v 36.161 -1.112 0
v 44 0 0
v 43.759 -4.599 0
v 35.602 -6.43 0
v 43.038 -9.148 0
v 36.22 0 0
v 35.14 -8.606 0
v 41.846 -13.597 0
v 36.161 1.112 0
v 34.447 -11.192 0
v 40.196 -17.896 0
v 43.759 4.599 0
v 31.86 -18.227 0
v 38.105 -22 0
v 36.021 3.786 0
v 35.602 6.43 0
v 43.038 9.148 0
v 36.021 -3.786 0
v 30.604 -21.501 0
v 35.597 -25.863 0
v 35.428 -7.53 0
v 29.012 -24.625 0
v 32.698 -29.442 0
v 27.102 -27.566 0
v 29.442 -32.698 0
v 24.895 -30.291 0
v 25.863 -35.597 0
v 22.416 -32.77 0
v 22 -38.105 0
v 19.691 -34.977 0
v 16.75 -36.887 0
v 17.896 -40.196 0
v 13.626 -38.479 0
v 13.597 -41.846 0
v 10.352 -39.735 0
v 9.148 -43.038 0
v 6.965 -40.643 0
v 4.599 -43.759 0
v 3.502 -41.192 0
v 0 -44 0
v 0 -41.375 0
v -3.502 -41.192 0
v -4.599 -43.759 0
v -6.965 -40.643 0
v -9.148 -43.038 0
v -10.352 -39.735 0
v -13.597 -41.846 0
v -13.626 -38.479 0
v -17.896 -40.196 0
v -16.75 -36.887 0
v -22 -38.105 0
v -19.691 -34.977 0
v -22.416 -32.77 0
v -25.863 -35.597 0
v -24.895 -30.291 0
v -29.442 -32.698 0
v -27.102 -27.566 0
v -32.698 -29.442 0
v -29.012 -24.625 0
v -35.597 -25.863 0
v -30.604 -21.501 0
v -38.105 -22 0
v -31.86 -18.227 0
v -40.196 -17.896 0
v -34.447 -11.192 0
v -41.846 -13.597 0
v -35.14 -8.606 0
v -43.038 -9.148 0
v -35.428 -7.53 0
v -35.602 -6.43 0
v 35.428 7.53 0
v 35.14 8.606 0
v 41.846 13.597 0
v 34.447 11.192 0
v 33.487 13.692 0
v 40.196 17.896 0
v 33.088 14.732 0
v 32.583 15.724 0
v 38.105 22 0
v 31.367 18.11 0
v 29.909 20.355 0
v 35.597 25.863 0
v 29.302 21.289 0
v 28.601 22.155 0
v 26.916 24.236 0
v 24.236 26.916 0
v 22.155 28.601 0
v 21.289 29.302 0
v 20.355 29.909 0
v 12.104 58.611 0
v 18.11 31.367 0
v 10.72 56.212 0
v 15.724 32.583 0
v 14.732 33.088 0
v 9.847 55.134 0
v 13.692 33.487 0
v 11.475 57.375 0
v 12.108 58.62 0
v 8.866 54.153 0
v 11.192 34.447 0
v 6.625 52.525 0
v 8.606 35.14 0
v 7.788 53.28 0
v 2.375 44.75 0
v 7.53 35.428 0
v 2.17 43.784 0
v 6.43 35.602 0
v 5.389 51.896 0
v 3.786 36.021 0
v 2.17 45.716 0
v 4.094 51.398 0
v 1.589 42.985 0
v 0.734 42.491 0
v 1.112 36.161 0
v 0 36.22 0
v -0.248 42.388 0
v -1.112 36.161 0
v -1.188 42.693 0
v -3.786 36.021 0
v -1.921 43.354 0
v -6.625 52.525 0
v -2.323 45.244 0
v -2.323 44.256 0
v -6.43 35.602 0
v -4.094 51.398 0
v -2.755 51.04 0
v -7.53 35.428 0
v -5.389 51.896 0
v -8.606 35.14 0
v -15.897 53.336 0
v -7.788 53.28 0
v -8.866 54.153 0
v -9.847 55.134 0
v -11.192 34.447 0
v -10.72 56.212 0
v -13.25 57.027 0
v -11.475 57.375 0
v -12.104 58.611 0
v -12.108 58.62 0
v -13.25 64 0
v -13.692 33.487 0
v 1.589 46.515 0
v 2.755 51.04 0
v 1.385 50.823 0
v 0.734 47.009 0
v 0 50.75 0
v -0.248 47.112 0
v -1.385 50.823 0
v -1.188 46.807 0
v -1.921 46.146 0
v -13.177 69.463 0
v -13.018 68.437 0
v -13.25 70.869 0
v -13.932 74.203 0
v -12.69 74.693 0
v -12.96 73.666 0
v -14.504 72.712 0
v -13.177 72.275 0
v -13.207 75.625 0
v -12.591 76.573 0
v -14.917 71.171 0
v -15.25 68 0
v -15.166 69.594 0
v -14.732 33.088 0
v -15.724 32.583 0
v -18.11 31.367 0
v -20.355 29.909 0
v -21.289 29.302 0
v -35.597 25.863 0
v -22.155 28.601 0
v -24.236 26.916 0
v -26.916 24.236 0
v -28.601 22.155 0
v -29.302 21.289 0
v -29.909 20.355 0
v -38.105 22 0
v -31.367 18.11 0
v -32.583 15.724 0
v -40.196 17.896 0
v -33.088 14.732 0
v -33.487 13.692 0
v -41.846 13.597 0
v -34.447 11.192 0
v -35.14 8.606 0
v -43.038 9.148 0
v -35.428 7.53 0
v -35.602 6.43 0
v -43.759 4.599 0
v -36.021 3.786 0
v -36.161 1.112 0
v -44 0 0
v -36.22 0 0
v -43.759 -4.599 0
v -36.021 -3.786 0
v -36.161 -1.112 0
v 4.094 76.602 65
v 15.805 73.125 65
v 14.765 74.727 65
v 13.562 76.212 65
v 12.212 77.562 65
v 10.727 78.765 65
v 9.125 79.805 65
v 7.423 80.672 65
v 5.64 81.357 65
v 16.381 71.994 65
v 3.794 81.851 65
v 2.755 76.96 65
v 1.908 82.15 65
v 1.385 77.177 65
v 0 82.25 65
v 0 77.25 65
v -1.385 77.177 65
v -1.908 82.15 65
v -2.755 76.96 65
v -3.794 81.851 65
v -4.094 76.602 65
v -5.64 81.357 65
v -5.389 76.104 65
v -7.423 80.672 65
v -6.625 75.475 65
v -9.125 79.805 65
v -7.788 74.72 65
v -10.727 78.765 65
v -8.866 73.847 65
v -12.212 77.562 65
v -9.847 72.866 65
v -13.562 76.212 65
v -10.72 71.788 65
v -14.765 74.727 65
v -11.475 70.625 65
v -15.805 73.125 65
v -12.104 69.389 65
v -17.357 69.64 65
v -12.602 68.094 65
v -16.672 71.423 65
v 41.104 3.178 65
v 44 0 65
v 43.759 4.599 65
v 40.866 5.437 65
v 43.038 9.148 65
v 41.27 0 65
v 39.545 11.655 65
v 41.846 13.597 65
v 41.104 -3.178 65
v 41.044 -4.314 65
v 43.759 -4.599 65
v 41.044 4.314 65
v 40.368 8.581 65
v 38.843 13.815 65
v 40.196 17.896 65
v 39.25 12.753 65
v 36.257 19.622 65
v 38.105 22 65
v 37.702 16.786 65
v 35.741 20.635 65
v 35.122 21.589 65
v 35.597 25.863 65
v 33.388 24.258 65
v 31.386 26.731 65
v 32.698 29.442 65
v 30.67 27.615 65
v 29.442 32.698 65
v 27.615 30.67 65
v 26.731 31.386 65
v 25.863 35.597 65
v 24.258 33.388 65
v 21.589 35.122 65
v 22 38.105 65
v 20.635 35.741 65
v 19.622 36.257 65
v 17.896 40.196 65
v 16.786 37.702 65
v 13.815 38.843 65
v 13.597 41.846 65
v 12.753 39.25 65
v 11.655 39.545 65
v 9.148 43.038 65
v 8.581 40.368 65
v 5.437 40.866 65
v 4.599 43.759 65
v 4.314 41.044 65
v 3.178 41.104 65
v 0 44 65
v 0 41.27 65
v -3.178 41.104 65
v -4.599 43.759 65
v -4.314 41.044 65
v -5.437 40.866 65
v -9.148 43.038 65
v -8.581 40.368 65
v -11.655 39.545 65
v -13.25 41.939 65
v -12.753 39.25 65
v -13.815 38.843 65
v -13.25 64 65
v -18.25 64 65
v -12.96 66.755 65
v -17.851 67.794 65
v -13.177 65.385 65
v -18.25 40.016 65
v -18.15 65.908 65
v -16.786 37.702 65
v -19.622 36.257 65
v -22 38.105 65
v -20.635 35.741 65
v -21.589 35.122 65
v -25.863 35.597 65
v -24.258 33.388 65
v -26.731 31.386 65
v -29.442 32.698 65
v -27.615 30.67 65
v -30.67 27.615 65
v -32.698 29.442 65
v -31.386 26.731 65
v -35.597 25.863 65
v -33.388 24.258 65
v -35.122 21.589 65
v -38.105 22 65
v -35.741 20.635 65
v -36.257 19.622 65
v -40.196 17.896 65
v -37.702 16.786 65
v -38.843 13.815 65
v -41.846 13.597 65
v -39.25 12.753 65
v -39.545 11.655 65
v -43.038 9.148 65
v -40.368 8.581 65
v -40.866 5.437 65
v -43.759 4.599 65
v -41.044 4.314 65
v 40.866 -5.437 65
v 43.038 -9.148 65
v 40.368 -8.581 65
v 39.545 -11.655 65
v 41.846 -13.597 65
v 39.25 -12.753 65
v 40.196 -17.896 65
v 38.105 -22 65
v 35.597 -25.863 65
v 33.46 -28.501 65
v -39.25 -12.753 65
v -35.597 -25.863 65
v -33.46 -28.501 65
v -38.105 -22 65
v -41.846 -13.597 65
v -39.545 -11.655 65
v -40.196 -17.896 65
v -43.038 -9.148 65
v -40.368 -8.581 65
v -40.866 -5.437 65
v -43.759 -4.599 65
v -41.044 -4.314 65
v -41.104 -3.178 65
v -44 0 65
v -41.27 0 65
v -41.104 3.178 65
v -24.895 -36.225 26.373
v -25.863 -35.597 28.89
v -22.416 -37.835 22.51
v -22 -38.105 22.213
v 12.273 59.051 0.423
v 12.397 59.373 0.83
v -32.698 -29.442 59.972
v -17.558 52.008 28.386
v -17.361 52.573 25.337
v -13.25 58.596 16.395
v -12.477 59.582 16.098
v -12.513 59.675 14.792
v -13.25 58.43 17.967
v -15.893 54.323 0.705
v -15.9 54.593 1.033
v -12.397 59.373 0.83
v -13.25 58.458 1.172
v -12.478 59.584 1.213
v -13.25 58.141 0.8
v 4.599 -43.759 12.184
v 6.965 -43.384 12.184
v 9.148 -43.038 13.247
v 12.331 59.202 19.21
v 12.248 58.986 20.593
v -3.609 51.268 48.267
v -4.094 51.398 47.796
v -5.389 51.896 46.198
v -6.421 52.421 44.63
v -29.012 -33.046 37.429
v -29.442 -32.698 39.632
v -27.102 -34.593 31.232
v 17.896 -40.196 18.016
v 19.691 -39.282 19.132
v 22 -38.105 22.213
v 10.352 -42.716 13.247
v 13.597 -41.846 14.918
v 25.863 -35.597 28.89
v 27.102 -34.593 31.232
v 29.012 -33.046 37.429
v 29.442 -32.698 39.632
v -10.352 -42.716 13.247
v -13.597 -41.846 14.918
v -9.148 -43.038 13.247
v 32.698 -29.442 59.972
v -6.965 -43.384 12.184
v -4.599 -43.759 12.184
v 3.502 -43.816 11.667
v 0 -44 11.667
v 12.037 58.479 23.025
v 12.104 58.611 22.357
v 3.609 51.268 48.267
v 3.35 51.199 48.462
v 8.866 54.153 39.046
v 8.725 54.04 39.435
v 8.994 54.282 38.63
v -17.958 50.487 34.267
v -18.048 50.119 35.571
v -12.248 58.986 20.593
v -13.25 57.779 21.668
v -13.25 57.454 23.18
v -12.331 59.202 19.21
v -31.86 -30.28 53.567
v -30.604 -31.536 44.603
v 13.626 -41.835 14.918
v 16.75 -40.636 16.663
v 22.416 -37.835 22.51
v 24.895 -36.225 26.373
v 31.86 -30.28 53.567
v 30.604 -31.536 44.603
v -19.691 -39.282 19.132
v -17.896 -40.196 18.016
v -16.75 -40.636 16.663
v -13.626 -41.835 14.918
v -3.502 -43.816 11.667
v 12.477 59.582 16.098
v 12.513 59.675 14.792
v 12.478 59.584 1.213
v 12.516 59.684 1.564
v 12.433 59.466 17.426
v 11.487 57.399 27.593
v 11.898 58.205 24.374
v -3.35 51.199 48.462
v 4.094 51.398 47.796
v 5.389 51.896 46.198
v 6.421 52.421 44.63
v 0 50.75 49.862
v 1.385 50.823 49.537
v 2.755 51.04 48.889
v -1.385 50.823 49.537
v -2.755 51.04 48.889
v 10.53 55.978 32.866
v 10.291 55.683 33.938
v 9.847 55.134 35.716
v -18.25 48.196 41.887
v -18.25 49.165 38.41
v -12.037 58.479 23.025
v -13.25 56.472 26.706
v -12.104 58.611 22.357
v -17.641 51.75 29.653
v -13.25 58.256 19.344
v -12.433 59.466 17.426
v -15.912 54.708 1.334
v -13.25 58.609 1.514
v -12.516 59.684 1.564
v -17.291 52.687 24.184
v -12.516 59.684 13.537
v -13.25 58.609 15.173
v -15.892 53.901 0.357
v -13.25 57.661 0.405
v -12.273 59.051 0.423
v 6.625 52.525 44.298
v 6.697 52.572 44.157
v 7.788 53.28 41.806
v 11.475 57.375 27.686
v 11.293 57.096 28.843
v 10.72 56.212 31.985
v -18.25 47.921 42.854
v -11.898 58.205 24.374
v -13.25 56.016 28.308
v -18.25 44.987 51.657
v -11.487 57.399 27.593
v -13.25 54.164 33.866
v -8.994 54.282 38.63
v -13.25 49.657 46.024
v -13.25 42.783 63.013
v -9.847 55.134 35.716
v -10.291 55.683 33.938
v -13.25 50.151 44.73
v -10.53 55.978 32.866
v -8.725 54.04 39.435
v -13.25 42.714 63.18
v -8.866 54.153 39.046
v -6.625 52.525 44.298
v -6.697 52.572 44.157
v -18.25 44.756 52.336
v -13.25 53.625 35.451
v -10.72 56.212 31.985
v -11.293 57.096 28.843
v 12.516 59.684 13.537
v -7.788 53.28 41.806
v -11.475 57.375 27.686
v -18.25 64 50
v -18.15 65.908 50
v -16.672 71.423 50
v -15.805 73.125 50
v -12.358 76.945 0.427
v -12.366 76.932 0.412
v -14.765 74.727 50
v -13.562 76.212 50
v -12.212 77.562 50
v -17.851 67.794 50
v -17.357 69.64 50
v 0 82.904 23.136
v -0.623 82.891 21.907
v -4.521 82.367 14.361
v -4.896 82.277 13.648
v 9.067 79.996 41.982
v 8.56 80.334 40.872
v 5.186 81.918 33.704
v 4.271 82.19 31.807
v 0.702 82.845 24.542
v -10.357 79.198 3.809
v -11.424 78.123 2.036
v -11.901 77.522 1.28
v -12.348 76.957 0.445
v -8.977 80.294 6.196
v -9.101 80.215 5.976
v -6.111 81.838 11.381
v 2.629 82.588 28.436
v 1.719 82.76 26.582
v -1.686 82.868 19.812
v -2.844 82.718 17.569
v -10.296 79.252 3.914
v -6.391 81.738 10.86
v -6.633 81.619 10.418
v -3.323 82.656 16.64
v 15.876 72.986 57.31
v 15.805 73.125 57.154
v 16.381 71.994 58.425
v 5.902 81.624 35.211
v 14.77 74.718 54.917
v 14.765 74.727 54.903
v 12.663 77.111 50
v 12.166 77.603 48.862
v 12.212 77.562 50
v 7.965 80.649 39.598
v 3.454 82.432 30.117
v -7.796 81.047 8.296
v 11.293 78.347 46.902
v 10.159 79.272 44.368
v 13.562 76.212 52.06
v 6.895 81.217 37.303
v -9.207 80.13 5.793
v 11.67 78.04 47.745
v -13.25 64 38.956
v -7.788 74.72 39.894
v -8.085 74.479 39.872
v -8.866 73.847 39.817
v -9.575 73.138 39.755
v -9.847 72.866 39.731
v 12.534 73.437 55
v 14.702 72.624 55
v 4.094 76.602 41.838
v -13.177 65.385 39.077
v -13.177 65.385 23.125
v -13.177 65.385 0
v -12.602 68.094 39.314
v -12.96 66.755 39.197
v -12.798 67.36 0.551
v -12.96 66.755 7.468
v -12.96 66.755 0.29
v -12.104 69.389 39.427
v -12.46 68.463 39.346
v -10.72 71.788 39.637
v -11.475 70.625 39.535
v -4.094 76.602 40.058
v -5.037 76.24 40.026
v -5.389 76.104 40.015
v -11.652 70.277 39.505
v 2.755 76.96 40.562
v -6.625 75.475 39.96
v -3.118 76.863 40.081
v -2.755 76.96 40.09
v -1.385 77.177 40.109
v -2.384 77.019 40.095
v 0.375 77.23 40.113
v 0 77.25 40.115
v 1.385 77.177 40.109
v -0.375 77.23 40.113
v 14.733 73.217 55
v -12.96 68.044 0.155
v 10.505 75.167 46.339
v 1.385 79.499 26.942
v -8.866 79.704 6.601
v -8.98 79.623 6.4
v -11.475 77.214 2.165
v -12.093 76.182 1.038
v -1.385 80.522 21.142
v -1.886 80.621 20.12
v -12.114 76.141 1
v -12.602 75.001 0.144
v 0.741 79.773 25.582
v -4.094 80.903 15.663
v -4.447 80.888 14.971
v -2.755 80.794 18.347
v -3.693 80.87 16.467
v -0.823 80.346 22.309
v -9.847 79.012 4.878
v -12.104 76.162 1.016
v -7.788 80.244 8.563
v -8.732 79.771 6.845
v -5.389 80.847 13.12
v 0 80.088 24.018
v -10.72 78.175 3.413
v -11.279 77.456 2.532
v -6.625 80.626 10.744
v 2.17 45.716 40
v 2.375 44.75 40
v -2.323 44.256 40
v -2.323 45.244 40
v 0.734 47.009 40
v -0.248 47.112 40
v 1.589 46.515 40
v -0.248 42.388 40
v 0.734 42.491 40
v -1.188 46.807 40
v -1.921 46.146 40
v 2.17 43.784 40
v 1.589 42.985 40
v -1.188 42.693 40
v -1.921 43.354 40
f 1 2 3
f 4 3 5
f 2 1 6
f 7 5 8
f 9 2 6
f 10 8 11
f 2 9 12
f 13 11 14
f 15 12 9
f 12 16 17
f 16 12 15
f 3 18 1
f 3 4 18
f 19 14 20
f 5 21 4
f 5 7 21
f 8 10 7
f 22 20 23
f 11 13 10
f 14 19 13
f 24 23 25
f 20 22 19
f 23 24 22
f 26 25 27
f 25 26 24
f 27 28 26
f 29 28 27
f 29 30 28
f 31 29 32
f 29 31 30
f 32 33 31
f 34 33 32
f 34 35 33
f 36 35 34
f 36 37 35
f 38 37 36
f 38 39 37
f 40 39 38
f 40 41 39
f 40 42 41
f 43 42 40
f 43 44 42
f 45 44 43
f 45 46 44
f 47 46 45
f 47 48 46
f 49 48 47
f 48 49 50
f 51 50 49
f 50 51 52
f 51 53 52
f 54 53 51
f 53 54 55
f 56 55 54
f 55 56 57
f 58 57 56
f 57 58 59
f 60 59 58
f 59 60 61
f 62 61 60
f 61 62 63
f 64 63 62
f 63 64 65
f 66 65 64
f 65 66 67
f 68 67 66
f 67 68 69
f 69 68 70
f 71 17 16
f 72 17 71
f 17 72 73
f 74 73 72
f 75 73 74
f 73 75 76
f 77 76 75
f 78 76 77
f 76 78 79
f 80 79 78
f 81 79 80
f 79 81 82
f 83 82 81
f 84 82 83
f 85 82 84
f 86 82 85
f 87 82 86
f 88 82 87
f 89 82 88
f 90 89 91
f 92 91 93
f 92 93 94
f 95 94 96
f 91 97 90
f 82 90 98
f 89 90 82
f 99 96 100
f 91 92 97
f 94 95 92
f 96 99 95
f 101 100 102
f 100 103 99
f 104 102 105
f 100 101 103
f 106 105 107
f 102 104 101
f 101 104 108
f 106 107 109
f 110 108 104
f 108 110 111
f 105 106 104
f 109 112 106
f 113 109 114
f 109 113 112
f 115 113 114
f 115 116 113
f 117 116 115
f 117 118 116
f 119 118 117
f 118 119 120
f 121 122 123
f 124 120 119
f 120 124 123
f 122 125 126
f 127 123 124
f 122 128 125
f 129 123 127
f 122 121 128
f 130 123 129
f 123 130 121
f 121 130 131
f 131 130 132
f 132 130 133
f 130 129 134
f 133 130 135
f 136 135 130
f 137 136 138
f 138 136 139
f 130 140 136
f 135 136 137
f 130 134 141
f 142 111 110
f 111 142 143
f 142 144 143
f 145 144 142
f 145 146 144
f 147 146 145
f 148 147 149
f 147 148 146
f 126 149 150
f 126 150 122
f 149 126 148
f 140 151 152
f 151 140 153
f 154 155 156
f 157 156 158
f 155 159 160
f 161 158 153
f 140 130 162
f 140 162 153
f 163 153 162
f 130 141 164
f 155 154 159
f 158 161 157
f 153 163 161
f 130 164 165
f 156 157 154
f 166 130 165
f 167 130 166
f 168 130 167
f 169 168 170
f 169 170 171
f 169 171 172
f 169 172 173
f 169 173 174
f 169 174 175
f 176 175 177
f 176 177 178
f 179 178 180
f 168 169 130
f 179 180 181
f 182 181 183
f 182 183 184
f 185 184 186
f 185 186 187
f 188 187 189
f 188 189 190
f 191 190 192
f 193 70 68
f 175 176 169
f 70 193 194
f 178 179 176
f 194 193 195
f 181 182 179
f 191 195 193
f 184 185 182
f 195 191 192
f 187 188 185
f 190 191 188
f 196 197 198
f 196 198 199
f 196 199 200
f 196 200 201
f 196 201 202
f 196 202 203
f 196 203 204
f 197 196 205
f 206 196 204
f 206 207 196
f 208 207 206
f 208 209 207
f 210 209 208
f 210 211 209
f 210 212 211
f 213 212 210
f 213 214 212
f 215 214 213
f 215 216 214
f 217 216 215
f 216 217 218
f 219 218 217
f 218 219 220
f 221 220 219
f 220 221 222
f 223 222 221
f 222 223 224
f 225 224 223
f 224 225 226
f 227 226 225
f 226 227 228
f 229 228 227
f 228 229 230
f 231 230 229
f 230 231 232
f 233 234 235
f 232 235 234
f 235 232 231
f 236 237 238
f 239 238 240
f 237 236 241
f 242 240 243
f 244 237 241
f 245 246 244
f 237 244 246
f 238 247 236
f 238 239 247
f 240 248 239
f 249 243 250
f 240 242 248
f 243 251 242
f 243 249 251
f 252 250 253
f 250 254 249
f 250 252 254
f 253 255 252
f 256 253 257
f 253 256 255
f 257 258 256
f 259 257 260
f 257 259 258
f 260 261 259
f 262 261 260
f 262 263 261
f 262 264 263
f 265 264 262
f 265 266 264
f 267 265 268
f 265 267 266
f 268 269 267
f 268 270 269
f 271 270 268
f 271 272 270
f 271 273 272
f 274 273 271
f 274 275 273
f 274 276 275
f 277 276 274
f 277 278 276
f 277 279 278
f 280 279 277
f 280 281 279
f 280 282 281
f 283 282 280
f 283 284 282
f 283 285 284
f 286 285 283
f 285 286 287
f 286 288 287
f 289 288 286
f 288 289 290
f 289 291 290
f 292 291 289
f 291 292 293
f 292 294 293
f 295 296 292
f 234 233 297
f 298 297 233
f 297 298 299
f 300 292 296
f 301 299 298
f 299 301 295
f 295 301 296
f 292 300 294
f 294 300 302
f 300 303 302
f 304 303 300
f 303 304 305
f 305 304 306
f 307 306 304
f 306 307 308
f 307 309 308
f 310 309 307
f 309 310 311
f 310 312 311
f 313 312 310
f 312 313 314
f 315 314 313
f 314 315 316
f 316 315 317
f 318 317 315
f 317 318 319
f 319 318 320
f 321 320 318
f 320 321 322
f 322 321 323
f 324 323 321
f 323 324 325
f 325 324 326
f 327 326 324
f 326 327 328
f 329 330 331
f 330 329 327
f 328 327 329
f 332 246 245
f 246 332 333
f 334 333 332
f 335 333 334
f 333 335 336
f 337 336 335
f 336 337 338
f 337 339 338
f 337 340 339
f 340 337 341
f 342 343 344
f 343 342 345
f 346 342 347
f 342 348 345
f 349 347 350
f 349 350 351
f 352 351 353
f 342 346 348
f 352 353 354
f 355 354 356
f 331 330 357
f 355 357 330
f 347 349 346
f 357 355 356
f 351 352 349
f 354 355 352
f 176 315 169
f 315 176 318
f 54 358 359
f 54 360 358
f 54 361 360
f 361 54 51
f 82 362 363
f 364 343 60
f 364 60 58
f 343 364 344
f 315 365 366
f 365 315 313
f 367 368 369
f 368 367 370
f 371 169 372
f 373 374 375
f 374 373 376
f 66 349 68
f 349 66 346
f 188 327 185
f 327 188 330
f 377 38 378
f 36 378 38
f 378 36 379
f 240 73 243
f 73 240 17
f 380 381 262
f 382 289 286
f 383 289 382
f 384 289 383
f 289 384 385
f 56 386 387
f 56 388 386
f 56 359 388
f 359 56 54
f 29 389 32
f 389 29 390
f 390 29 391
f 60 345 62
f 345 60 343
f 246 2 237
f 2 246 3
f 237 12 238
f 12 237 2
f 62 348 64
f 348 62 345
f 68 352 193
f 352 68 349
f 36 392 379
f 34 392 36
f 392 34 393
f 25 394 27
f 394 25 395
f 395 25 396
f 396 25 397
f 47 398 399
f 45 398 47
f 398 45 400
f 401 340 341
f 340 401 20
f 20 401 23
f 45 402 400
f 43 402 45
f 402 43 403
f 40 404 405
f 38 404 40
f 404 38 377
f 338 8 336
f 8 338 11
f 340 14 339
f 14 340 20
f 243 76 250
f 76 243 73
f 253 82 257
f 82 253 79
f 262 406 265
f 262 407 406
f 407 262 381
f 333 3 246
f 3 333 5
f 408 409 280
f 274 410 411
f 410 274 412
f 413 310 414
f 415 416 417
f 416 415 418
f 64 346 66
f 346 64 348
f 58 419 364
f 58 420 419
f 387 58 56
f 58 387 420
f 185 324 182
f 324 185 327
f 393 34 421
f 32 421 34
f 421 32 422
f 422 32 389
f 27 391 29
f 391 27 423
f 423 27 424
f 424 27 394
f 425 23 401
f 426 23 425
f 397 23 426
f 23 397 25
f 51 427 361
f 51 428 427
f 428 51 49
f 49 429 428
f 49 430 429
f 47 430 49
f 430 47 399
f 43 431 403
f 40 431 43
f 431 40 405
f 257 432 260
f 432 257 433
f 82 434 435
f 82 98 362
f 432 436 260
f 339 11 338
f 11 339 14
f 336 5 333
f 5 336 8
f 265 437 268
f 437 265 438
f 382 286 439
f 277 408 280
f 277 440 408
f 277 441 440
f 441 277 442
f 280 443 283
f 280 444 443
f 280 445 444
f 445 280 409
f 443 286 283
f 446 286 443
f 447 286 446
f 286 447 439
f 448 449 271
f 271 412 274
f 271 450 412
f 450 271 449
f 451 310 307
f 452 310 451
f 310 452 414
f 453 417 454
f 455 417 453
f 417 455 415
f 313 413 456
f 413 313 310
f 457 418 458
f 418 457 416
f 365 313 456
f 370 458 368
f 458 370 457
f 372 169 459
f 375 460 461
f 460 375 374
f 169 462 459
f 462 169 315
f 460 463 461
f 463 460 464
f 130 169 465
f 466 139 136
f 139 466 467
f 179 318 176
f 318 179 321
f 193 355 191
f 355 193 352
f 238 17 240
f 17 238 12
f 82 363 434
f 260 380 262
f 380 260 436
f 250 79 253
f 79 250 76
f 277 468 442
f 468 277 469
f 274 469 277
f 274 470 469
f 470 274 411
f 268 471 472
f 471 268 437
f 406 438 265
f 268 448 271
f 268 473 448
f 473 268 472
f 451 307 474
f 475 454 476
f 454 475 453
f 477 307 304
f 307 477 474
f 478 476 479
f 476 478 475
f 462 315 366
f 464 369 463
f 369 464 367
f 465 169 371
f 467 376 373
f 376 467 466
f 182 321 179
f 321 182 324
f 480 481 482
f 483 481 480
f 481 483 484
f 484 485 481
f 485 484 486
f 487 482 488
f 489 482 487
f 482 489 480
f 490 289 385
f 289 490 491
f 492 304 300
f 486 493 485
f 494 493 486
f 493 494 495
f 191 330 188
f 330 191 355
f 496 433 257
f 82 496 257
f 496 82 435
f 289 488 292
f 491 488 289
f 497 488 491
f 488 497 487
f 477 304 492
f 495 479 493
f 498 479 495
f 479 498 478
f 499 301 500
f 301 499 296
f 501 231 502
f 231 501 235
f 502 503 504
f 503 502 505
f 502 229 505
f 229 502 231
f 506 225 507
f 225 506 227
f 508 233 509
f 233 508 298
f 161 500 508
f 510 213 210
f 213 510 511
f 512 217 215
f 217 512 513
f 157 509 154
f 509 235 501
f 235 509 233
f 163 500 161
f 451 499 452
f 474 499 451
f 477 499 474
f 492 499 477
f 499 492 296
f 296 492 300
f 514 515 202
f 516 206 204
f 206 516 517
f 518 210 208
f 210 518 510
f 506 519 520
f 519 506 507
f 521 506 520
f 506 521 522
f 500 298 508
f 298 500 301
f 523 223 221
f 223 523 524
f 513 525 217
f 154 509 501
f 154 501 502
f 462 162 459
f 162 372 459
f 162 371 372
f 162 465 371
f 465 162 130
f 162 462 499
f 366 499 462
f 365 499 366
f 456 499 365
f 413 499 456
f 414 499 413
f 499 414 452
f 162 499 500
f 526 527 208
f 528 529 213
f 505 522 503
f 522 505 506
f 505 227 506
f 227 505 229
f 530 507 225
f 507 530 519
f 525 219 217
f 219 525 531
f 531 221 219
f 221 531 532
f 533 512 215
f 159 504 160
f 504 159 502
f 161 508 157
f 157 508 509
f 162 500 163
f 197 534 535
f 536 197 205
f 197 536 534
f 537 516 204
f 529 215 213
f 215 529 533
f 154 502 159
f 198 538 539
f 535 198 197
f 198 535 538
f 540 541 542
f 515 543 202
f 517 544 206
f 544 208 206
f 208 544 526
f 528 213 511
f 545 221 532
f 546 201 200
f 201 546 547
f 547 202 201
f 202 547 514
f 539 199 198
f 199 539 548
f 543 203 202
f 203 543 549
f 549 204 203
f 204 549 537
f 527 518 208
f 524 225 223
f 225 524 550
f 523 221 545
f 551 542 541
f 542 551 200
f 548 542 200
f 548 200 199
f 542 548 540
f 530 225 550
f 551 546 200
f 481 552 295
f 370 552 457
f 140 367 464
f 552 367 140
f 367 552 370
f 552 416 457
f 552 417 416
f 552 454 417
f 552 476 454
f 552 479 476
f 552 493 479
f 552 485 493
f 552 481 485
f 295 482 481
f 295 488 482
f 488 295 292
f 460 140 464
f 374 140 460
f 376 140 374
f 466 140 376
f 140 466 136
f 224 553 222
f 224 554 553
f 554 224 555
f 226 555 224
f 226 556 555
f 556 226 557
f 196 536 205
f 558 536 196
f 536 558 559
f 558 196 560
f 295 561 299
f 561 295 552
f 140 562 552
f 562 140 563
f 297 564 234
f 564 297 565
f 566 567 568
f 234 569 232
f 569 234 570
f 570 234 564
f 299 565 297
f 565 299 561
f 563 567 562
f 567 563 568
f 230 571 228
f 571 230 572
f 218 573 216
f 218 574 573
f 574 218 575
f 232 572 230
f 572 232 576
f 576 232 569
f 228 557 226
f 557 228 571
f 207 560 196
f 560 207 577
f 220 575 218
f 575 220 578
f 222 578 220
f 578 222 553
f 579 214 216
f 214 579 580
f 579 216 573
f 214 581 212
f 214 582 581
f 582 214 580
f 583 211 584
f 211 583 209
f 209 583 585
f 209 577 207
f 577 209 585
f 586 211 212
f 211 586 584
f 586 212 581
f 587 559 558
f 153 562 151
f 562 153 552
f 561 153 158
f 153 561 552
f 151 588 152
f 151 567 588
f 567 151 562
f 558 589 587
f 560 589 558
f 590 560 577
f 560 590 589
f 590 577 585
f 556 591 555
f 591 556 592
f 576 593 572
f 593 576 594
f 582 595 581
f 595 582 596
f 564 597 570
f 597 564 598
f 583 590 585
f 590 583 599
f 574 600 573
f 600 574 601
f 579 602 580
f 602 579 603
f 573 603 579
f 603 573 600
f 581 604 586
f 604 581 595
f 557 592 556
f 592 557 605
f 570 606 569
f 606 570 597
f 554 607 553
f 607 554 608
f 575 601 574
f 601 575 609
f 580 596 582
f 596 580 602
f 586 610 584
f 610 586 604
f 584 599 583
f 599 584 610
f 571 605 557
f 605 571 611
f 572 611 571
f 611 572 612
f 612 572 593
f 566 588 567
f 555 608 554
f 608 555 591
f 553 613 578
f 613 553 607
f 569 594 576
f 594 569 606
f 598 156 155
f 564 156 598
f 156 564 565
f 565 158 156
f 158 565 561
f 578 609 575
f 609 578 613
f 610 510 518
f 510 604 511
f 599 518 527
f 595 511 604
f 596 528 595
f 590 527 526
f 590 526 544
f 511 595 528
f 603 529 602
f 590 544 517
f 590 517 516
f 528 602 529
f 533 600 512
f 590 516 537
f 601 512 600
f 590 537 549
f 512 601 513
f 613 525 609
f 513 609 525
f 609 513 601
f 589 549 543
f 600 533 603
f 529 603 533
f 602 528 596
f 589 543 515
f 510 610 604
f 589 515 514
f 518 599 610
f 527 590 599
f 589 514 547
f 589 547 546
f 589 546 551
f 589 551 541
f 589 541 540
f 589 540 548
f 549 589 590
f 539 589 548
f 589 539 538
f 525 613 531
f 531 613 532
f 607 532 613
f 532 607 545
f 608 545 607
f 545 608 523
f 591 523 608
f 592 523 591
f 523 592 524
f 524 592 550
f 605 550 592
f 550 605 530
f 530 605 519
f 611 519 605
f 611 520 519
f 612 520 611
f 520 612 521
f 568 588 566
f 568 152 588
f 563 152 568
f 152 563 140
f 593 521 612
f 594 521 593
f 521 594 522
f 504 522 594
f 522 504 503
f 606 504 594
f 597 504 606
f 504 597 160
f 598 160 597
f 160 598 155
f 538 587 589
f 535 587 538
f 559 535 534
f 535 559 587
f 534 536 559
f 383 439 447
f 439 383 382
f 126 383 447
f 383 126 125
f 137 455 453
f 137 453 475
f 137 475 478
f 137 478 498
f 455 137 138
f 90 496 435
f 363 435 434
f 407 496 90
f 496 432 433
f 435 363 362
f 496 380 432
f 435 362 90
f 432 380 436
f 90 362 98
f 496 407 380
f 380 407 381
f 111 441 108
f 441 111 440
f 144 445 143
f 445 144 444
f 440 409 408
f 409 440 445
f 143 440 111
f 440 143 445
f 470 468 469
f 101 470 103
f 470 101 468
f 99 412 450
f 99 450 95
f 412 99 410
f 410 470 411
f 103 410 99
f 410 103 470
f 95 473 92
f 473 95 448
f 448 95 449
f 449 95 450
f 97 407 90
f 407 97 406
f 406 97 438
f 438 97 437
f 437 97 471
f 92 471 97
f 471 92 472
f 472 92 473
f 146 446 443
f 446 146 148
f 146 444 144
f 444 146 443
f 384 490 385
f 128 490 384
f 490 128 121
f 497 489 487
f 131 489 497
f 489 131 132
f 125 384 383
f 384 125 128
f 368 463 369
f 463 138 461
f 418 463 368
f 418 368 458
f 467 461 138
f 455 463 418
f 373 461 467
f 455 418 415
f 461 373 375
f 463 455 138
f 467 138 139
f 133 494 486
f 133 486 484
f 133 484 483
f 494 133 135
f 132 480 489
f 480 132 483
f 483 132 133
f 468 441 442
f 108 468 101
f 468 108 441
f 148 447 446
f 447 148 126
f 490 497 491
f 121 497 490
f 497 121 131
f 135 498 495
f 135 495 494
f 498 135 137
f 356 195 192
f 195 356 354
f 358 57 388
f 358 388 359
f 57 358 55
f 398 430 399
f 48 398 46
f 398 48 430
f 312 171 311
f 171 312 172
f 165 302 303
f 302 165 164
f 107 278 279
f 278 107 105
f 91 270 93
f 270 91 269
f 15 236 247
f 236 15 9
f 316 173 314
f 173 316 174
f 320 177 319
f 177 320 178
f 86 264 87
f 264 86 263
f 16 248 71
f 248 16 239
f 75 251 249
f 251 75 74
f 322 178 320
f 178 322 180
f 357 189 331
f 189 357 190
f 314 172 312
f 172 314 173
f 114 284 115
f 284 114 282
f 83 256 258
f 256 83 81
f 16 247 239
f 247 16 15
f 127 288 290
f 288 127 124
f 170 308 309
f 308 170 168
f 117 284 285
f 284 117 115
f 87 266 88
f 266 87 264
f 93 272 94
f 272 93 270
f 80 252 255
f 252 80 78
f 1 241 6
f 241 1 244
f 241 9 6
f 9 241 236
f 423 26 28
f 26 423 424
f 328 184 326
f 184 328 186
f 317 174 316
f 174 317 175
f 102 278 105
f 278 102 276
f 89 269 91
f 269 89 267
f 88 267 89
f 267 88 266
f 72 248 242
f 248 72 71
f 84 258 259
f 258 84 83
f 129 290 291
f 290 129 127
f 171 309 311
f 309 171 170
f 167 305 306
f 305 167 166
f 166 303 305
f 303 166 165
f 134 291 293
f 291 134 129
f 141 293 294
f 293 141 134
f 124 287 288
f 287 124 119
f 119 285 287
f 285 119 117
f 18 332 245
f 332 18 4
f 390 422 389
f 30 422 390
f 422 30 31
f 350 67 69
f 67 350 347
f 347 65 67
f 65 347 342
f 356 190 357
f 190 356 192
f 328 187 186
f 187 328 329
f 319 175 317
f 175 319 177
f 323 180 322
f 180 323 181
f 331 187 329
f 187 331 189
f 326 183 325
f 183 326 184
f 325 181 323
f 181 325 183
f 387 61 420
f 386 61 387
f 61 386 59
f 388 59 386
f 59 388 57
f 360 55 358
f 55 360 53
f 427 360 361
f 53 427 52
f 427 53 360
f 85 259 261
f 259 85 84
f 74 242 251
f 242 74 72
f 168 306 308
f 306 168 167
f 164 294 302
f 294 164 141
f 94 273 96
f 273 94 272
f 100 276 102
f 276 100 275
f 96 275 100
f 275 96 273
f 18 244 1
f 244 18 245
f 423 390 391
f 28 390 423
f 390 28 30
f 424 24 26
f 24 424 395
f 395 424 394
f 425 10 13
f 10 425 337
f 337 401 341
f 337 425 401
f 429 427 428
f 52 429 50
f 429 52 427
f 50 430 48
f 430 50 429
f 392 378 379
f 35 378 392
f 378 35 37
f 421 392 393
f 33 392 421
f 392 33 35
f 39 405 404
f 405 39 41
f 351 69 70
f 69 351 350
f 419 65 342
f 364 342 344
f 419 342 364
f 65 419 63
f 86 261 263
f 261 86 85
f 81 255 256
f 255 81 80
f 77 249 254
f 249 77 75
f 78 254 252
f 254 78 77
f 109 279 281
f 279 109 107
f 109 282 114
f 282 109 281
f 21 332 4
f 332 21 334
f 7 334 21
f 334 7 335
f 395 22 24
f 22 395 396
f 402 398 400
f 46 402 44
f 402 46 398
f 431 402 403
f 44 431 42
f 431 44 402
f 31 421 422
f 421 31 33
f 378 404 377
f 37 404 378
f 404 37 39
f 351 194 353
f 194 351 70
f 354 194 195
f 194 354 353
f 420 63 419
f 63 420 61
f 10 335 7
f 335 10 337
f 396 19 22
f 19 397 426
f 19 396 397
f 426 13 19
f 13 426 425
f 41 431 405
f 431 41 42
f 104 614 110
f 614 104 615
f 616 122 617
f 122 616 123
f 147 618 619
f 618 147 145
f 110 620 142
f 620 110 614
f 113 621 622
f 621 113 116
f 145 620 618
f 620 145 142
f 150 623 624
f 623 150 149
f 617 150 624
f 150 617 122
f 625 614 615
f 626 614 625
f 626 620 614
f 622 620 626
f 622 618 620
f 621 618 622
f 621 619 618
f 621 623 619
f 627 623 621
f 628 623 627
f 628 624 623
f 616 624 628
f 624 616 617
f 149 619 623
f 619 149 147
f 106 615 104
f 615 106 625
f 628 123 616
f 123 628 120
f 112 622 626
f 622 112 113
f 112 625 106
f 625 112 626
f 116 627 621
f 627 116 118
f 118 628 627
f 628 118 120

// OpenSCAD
$fs = 1;
$fa = 6;
bottleD = 65;
glassD1 = 60;
glassD2 = 88;
glassH = 135+13;
standD = 24 + 2.5;
holderHeight = 65;
wallThickness = 2.5;
gap = 2;
x=[65, 41, 24];

module glass(inflate = 0) {
	cylinder(d1 = glassD1+inflate, d2 = glassD2+inflate, h=glassH, center=false);
}

module bottle(inflate = 0) {
	cylinder(d = bottleD+inflate, h=glassH, center=false);
}

module moveToStand() {
    translate([0,20+glassD2/2,0]) children();
}

module stand() {
	moveToStand() translate([0,0,-100 + holderHeight + 25 - 10]) cylinder(d=standD, h=200, center=true);
	moveToStand() translate([0,0,50+ holderHeight + 25 - 10]) cylinder(d=17.5 + 3, h=100, center=true);
}
module limitZ(plus = 0) {
    intersection() {
        cylinder(r=100, h=holderHeight + plus, center=false);
        children();
    }
}
module standClamp() {
    cylinder(d=glassD2, h=holderHeight/2, center=false);
    limitZ()
        hull() {
            moveToStand() rotate([30,0,0]) cylinder(d=standD-10, h=10, center=false);
            cylinder(d=glassD2, h=holderHeight, center=false);
        }
    difference() {
        hull() {
            translate([0, 0, holderHeight - 15]) moveToStand() cylinder(d=standD + 10, h=15, center=false);
            translate([0, 4, 0]) moveToStand() cylinder(d=standD + 4, h=1, center=false);
            cylinder(d=standD + 10, h=holderHeight, center=false);

        }
        hull() {
            stand();
            translate([40, -15, 0]) stand();
            translate([0, -50, 0]) stand();
            translate([40, -50, 0]) stand();
        }
        hull() {
            limitZ(-10) {
                translate([0, 5, 5]) rotate([10, 0, 0]) stand();
                translate([50, 0, 5]) rotate([10, 0, 0]) stand();
            }
        }
        translate([(holderHeight)*2 - (standD)/2, 0, 0]) moveToStand() cylinder(r1=(holderHeight)*2, r2=(holderHeight * 1.5), h=(holderHeight), center=false);
    }
}
module glassBottle() {
    translate([0, 0, -35]) {
        glass(gap);
        bottle(gap);
    }
}
module holder() {
	difference() {
		standClamp();
		translate([0, 0, 25]) stand();
        hull() {
            glassBottle();
            translate([0, -45, 200]) glassBottle();
        }
        #translate([0, -standD/2 - 6, 0]) moveToStand() cylinder(d=4.75, h=holderHeight - 25, center=false);
	}
}
holder();
